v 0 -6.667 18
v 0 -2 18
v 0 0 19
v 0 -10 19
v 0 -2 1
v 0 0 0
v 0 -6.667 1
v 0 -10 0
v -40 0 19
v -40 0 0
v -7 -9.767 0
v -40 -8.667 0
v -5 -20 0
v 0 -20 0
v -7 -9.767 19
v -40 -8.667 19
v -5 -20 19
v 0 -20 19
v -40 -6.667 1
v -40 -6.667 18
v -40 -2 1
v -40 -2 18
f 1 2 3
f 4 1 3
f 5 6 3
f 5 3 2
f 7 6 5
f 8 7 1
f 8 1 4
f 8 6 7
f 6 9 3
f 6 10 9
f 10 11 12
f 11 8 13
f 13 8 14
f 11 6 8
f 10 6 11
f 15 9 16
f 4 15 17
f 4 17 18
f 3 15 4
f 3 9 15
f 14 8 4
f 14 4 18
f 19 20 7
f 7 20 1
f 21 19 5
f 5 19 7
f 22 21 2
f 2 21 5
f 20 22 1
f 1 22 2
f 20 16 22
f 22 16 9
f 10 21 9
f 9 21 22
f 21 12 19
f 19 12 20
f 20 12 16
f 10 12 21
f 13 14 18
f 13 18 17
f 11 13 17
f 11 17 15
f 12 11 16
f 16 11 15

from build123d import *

# Parameters (mm, degrees)
PAD_DEPTH    = 19
SKETCH001_W  = 4.666667
SKETCH001_H  = 17
POCKET_DEPTH = 40.001


with BuildPart() as part:
    # Sketch → Pad (new body)
    with BuildSketch(Plane.XY):
        Polygon((0, 0), (0, -10), (0, -20), (-5, -20), (-7, -9.766667), (-40, -8.666667), (-40, 0), align=None)
    extrude(amount=PAD_DEPTH)

    # Sketch001 → Pocket (cut, through all)
    with BuildSketch(Plane(origin=(-40, 0, 0), x_dir=(0, -1, 0), z_dir=(-1, 0, 0))):
        with Locations((4.333334, 9.5)):
            Rectangle(SKETCH001_W, SKETCH001_H)
    extrude(amount=-POCKET_DEPTH, mode=Mode.SUBTRACT)


solid = part.part
